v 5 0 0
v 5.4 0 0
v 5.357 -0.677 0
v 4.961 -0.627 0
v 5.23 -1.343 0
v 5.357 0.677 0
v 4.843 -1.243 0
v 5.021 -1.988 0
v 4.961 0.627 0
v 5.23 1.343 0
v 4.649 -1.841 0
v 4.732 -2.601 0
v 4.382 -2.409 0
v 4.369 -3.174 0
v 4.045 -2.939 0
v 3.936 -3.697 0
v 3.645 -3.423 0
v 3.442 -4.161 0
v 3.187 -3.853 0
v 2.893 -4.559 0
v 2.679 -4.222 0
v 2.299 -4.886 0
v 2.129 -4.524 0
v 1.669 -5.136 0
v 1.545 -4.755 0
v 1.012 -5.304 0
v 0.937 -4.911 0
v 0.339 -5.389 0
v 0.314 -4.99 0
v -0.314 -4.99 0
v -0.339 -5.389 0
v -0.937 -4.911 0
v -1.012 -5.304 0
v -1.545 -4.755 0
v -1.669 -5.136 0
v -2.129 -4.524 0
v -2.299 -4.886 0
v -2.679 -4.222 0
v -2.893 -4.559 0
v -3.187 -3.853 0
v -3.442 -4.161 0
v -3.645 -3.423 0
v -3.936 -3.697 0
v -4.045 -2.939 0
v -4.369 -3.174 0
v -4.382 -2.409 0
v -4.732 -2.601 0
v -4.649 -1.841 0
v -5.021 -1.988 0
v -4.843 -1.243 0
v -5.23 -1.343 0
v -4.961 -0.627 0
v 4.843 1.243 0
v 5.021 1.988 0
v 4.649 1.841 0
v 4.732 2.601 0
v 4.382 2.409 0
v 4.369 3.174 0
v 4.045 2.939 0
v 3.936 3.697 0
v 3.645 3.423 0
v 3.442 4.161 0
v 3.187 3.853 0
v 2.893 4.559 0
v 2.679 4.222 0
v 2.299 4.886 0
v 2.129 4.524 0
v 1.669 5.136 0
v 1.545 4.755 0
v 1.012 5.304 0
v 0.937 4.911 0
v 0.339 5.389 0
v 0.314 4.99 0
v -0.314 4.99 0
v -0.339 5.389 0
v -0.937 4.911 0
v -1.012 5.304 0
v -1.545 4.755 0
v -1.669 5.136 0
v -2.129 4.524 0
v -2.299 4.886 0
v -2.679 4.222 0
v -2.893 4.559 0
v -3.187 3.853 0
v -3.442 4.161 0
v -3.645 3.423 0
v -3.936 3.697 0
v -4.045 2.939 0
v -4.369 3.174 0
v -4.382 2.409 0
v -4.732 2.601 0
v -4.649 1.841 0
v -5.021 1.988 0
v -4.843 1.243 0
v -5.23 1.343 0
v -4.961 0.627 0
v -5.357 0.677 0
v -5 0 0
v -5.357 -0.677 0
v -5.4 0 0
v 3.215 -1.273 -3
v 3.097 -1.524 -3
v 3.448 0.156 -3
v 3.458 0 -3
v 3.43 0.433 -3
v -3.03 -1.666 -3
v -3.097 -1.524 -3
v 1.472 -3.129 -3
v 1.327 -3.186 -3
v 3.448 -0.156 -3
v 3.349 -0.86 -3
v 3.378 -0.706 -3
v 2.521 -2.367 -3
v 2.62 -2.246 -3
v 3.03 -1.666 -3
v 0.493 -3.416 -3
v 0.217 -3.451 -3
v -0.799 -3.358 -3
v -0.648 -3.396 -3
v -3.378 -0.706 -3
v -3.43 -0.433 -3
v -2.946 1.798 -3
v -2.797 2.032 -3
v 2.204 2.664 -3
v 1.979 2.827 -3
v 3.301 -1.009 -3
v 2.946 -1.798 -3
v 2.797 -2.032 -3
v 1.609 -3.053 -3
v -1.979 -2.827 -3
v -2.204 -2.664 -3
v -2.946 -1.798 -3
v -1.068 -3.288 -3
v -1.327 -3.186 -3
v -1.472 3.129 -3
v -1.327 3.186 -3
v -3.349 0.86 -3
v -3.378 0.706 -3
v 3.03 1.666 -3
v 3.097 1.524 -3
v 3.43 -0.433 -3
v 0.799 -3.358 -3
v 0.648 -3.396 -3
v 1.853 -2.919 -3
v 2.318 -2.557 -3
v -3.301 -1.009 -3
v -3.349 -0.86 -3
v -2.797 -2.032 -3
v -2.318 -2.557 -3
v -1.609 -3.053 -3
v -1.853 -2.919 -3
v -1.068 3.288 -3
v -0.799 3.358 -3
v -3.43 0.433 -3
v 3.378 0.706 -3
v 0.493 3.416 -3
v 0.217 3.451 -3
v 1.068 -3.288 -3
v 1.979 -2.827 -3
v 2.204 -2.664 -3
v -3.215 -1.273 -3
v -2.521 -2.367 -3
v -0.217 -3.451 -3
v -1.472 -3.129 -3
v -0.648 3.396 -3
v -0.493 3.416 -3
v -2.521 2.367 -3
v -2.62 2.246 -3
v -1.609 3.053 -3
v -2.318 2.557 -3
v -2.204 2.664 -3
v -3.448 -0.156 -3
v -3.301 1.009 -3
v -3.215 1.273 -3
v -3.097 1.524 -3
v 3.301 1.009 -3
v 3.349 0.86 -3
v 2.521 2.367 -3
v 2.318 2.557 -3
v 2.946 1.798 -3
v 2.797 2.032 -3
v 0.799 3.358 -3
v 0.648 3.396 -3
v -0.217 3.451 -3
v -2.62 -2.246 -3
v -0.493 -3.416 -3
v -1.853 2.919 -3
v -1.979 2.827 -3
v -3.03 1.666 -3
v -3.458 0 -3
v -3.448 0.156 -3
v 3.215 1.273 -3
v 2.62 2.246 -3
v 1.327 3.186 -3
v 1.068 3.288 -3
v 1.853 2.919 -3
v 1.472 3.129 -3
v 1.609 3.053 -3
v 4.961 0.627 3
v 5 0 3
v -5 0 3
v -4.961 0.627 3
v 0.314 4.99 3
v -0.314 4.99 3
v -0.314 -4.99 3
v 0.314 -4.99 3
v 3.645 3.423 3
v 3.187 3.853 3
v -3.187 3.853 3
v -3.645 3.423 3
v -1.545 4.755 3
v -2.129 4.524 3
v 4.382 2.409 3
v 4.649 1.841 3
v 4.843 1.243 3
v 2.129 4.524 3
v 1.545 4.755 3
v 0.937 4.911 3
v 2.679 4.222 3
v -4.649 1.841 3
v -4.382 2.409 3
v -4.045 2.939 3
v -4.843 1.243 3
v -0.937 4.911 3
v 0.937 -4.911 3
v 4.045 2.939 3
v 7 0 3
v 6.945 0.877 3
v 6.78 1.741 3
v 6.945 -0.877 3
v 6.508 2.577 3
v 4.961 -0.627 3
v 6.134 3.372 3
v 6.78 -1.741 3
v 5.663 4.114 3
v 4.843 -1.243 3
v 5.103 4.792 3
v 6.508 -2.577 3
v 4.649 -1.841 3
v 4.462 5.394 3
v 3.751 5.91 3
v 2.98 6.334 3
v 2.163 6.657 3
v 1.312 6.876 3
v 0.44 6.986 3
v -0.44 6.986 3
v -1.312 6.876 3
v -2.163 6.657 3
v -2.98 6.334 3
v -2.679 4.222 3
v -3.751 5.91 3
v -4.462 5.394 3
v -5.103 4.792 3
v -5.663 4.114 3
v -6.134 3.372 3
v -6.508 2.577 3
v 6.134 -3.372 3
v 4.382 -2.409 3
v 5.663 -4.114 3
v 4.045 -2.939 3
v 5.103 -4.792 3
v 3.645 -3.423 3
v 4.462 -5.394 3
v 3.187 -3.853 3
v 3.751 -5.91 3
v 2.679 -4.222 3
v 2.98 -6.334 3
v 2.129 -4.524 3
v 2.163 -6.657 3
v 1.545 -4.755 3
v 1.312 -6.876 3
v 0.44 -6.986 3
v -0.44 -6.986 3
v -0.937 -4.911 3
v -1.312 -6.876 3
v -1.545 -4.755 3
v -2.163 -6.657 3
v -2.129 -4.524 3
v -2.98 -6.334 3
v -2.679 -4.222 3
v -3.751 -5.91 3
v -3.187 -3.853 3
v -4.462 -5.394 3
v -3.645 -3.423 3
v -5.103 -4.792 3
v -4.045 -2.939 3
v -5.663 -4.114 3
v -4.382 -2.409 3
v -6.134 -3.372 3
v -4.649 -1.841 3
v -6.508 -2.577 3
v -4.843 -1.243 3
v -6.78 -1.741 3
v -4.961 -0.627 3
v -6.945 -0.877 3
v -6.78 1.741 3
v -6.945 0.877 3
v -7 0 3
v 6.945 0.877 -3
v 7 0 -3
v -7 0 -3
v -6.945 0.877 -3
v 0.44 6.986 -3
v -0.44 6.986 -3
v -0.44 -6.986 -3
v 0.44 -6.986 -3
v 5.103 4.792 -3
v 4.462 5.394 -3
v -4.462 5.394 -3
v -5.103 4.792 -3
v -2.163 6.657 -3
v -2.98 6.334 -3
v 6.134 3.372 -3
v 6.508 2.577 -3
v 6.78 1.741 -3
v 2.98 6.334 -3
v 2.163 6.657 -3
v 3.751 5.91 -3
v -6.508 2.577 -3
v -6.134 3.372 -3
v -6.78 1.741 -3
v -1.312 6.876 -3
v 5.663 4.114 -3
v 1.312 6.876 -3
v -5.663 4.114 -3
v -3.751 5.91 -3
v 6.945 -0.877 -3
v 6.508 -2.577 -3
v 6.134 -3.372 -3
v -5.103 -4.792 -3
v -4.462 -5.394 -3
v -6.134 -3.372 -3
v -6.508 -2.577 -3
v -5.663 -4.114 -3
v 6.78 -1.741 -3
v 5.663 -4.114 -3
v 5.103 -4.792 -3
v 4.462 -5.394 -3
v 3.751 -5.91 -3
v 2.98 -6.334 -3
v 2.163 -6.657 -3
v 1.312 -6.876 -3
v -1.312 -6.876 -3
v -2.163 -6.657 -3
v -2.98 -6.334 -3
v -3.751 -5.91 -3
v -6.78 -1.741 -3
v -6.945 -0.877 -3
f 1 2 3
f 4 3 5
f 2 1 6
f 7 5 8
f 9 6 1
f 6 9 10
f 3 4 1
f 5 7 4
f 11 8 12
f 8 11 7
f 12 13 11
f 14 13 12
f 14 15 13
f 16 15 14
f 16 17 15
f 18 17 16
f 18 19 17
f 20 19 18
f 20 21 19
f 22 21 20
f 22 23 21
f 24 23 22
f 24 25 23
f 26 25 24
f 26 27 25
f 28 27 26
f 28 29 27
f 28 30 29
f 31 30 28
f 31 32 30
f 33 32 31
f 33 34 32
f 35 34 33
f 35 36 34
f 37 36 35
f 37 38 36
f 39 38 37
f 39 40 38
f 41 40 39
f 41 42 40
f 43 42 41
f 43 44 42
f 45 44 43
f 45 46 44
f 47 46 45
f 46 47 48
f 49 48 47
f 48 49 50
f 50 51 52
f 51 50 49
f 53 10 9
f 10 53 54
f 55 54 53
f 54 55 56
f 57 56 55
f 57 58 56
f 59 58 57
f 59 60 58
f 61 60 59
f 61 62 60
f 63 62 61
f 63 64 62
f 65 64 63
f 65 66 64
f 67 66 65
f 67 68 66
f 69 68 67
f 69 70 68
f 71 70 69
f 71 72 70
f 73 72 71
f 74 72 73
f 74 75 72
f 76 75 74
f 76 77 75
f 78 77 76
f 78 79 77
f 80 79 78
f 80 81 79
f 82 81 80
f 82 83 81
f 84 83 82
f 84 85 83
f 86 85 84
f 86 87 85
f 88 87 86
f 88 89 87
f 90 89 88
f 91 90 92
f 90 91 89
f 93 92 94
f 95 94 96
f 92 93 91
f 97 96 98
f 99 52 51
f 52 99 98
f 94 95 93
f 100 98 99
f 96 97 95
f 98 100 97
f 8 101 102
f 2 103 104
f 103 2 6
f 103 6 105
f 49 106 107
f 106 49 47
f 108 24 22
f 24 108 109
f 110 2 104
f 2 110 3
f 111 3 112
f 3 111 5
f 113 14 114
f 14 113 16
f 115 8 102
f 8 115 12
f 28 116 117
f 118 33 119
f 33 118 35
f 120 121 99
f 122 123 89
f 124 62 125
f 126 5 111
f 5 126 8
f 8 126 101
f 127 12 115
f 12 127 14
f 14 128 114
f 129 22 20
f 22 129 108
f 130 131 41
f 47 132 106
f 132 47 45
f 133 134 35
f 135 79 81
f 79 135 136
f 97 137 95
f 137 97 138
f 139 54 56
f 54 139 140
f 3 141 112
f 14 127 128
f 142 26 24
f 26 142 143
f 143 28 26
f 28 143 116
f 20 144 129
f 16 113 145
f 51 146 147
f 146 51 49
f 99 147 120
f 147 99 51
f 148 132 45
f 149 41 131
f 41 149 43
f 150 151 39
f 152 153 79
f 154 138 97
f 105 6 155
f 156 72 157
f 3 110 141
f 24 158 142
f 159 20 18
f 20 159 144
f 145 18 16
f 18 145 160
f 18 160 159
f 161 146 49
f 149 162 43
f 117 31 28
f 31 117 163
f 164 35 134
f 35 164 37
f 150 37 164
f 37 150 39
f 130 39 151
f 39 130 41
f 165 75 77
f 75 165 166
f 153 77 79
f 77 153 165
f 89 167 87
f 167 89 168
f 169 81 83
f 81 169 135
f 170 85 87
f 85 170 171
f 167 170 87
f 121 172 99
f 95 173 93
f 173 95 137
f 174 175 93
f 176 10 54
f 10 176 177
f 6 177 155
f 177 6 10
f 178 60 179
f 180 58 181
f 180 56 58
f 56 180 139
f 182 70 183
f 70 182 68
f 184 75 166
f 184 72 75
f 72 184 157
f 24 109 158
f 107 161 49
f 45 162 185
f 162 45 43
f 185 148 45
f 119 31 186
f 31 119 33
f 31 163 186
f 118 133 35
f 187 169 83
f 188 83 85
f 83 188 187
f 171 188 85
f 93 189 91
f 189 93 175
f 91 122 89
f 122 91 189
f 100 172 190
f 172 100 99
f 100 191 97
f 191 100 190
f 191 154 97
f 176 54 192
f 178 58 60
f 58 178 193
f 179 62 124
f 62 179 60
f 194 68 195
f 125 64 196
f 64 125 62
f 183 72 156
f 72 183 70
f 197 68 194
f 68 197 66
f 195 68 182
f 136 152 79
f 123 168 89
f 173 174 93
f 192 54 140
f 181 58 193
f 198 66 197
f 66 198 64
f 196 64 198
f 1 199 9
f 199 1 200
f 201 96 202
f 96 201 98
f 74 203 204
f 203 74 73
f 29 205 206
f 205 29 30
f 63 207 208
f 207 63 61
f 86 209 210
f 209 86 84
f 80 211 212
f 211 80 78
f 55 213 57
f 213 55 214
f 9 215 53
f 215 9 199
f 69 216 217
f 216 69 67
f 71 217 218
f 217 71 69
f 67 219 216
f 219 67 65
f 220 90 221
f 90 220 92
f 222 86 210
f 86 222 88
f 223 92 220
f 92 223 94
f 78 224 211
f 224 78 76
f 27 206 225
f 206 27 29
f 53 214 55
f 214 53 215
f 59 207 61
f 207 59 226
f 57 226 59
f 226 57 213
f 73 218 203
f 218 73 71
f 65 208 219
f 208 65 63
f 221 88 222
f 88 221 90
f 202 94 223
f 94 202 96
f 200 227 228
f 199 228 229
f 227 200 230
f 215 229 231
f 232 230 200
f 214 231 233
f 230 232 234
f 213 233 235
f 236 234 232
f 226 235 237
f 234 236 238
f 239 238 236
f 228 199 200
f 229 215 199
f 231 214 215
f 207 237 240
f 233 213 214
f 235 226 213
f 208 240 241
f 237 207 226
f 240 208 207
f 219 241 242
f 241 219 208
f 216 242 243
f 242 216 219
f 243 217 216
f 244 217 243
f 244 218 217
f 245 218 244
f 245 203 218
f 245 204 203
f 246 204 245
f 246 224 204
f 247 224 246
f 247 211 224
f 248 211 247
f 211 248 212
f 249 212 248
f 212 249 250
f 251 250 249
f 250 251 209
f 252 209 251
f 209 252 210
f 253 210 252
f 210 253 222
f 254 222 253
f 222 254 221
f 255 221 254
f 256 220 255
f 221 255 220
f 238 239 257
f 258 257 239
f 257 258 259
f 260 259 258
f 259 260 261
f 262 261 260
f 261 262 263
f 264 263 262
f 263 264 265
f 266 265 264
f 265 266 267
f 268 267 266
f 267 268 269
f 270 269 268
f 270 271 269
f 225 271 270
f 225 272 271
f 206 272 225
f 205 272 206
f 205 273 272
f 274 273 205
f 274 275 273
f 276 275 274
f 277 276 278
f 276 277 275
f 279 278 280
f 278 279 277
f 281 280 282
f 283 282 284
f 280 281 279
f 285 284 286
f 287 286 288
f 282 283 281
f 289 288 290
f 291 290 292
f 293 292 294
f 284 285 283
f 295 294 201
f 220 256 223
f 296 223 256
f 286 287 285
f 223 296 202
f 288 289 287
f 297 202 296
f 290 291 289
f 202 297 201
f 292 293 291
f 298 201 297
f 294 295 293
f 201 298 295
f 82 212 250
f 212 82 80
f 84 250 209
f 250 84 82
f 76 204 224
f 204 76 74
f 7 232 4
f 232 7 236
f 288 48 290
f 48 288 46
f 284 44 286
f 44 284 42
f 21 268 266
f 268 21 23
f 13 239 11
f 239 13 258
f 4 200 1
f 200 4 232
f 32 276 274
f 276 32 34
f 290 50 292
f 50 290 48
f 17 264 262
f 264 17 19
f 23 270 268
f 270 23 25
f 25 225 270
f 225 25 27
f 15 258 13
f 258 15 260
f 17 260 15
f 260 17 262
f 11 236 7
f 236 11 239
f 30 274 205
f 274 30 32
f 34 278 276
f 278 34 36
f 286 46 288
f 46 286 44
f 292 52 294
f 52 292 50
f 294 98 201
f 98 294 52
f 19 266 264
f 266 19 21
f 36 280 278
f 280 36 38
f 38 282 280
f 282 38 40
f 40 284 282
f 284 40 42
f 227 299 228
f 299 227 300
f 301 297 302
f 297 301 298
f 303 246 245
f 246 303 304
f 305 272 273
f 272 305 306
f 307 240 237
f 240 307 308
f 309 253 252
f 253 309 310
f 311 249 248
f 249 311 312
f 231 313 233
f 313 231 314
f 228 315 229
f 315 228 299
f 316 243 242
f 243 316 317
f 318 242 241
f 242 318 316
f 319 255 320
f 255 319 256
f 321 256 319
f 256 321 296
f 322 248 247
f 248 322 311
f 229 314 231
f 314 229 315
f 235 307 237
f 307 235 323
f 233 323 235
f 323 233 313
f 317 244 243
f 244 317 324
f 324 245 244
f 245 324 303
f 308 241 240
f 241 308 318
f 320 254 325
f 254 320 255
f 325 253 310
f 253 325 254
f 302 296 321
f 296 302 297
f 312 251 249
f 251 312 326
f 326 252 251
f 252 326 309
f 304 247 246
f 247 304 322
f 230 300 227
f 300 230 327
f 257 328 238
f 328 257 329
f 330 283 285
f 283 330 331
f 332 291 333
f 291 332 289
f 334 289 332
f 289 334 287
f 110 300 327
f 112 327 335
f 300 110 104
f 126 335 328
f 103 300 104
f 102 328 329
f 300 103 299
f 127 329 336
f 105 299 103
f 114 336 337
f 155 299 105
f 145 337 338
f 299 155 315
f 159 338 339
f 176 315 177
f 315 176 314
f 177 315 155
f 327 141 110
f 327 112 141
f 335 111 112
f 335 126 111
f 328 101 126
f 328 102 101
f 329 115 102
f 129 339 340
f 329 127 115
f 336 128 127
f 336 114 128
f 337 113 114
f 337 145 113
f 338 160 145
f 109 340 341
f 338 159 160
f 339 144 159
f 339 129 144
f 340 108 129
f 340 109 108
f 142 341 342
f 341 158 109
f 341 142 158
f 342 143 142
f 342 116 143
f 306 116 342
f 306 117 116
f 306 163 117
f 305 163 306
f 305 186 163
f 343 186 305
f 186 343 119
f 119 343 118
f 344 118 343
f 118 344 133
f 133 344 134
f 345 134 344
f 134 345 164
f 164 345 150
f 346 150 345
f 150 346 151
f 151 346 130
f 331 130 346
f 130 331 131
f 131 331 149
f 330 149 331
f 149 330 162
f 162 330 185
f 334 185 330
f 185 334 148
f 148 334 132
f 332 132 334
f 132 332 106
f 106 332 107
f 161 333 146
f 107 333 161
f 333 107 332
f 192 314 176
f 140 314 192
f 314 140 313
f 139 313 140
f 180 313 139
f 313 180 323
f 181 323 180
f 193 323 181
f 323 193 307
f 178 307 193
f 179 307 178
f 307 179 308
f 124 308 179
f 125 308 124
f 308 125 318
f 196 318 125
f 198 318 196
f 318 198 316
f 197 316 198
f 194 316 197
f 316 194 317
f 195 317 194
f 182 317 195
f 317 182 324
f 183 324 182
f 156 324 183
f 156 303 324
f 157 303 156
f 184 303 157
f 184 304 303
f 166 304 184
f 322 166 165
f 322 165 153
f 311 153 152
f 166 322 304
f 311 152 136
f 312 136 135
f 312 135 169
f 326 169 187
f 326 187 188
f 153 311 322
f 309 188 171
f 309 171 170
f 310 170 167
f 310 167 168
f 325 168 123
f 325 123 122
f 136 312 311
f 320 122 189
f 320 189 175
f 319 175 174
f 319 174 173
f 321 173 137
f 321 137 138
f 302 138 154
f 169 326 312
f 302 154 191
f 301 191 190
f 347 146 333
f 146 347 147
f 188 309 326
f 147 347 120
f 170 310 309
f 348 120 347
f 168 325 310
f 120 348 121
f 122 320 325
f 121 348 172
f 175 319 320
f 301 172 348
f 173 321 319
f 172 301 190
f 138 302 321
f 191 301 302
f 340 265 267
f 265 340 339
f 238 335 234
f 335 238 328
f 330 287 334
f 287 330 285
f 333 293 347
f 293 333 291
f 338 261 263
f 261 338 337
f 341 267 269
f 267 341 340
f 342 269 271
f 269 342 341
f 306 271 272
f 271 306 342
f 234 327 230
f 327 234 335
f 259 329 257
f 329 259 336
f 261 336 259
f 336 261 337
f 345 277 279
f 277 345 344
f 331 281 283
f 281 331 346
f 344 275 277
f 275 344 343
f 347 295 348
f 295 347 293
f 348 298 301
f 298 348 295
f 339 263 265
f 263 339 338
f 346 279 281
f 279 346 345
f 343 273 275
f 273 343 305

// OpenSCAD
$fn = 50;

difference() {
	union() {
		translate(v = [0, 0, -3.0]) {
			cylinder(h = 6, r = 7.0);
		}
	}
	union() {
		translate(v = [0, 0, 0]) {
			rotate(a = [0, 0, 0]) {
				difference() {
					union() {
						translate(v = [0, 0, -6.0]) {
							cylinder(h = 6, r = 2.6);
						}
						translate(v = [0, 0, -3.9]) {
							cylinder(h = 3.9, r1 = 2.875, r2 = 5.4);
						}
						translate(v = [0, 0, -6.0]) {
							cylinder(h = 6, r = 2.875);
						}
						translate(v = [0, 0, -6.0]) {
							cylinder(h = 6, r = 2.6);
						}
					}
					union();
				}
			}
		}
		#cylinder(h = 3, r = 5.0);
	}
}
